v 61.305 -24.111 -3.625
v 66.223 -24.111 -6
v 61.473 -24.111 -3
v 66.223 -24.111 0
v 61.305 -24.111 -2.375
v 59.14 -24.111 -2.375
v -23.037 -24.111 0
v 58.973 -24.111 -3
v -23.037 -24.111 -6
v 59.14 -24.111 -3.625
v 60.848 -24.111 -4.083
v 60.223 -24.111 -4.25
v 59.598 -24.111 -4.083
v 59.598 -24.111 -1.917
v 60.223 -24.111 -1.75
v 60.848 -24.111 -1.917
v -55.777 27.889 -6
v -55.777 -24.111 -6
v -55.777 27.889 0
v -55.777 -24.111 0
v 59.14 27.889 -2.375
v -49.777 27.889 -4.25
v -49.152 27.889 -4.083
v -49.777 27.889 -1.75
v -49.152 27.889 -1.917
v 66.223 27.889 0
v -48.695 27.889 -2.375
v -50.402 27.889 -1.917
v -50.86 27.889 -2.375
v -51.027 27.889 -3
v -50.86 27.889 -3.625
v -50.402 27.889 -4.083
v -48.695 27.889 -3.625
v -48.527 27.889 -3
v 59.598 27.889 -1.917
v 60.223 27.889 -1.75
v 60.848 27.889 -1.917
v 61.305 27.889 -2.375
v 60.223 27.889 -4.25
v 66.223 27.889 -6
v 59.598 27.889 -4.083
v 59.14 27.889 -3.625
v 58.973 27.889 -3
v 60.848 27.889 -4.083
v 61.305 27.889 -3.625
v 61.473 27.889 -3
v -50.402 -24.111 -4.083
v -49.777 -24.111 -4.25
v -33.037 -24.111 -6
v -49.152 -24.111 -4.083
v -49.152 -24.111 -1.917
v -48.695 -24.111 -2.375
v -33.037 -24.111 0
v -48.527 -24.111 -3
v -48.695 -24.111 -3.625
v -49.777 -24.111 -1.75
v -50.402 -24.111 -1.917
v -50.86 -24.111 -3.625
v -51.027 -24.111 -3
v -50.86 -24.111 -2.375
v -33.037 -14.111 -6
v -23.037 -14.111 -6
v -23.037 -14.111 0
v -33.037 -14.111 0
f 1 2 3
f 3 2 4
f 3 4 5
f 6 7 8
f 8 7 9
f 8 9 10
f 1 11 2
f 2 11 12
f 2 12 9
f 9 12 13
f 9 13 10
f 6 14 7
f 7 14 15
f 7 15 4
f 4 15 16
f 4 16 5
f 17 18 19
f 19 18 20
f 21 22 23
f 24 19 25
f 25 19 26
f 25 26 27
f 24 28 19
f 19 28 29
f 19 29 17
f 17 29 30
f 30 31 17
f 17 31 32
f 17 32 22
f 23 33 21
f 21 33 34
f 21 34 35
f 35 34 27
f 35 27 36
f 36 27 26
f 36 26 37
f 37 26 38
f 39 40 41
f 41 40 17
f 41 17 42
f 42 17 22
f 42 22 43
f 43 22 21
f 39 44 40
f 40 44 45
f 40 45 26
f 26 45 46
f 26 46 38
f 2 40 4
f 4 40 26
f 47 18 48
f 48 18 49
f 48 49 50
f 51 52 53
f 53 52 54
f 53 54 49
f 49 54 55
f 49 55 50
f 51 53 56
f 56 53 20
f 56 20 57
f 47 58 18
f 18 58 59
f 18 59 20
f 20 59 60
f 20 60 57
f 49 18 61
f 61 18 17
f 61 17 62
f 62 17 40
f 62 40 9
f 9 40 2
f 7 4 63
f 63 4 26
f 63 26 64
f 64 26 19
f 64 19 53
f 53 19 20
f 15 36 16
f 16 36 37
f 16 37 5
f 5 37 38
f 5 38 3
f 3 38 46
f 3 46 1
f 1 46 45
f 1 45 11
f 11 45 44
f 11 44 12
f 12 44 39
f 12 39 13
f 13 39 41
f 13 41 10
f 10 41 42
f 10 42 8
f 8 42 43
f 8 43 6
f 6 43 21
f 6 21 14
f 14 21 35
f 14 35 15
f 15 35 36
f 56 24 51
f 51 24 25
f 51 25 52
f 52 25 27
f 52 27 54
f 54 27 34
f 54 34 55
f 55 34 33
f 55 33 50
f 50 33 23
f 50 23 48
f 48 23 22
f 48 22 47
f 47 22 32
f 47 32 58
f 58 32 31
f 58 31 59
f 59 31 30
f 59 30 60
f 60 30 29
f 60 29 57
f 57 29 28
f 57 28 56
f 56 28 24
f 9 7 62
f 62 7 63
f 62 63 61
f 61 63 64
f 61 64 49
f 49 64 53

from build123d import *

# Parameters (mm, degrees)
SKETCH1_W           = 122
SKETCH1_H           = 52
BOSS_EXTRUDE1_DEPTH = 6
SKETCH2_R           = 1.25
CUT_EXTRUDE1_DEPTH  = 53
SKETCH3_W           = 10
SKETCH3_H           = 10
CUT_EXTRUDE2_DEPTH  = 10


with BuildPart() as part:
    # Sketch1 → Boss-Extrude1 (new body)
    with BuildSketch(Plane.XY):
        with Locations((5.22260274, 1.88869863)):
            Rectangle(SKETCH1_W, SKETCH1_H)
    extrude(amount=-BOSS_EXTRUDE1_DEPTH)

    # Sketch2 → Cut-Extrude1 (cut, through all)
    with BuildSketch(Plane(origin=(0, 27.88869863, 0), x_dir=(1, 0, 0), z_dir=(0, 1, 0))):
        with Locations((-49.77739726, 3)):
            Circle(SKETCH2_R)
        with Locations((60.22260274, 3)):
            Circle(SKETCH2_R)
    extrude(amount=-CUT_EXTRUDE1_DEPTH, mode=Mode.SUBTRACT)

    # Sketch3 → Cut-Extrude2 (cut)
    with BuildSketch(Plane(origin=(0, 0, -6), x_dir=(-1, 0, 0), z_dir=(0, 0, -1))):
        with Locations((28.036600011, -19.11130137)):
            Rectangle(SKETCH3_W, SKETCH3_H)
    extrude(amount=-CUT_EXTRUDE2_DEPTH, mode=Mode.SUBTRACT)


solid = part.part
